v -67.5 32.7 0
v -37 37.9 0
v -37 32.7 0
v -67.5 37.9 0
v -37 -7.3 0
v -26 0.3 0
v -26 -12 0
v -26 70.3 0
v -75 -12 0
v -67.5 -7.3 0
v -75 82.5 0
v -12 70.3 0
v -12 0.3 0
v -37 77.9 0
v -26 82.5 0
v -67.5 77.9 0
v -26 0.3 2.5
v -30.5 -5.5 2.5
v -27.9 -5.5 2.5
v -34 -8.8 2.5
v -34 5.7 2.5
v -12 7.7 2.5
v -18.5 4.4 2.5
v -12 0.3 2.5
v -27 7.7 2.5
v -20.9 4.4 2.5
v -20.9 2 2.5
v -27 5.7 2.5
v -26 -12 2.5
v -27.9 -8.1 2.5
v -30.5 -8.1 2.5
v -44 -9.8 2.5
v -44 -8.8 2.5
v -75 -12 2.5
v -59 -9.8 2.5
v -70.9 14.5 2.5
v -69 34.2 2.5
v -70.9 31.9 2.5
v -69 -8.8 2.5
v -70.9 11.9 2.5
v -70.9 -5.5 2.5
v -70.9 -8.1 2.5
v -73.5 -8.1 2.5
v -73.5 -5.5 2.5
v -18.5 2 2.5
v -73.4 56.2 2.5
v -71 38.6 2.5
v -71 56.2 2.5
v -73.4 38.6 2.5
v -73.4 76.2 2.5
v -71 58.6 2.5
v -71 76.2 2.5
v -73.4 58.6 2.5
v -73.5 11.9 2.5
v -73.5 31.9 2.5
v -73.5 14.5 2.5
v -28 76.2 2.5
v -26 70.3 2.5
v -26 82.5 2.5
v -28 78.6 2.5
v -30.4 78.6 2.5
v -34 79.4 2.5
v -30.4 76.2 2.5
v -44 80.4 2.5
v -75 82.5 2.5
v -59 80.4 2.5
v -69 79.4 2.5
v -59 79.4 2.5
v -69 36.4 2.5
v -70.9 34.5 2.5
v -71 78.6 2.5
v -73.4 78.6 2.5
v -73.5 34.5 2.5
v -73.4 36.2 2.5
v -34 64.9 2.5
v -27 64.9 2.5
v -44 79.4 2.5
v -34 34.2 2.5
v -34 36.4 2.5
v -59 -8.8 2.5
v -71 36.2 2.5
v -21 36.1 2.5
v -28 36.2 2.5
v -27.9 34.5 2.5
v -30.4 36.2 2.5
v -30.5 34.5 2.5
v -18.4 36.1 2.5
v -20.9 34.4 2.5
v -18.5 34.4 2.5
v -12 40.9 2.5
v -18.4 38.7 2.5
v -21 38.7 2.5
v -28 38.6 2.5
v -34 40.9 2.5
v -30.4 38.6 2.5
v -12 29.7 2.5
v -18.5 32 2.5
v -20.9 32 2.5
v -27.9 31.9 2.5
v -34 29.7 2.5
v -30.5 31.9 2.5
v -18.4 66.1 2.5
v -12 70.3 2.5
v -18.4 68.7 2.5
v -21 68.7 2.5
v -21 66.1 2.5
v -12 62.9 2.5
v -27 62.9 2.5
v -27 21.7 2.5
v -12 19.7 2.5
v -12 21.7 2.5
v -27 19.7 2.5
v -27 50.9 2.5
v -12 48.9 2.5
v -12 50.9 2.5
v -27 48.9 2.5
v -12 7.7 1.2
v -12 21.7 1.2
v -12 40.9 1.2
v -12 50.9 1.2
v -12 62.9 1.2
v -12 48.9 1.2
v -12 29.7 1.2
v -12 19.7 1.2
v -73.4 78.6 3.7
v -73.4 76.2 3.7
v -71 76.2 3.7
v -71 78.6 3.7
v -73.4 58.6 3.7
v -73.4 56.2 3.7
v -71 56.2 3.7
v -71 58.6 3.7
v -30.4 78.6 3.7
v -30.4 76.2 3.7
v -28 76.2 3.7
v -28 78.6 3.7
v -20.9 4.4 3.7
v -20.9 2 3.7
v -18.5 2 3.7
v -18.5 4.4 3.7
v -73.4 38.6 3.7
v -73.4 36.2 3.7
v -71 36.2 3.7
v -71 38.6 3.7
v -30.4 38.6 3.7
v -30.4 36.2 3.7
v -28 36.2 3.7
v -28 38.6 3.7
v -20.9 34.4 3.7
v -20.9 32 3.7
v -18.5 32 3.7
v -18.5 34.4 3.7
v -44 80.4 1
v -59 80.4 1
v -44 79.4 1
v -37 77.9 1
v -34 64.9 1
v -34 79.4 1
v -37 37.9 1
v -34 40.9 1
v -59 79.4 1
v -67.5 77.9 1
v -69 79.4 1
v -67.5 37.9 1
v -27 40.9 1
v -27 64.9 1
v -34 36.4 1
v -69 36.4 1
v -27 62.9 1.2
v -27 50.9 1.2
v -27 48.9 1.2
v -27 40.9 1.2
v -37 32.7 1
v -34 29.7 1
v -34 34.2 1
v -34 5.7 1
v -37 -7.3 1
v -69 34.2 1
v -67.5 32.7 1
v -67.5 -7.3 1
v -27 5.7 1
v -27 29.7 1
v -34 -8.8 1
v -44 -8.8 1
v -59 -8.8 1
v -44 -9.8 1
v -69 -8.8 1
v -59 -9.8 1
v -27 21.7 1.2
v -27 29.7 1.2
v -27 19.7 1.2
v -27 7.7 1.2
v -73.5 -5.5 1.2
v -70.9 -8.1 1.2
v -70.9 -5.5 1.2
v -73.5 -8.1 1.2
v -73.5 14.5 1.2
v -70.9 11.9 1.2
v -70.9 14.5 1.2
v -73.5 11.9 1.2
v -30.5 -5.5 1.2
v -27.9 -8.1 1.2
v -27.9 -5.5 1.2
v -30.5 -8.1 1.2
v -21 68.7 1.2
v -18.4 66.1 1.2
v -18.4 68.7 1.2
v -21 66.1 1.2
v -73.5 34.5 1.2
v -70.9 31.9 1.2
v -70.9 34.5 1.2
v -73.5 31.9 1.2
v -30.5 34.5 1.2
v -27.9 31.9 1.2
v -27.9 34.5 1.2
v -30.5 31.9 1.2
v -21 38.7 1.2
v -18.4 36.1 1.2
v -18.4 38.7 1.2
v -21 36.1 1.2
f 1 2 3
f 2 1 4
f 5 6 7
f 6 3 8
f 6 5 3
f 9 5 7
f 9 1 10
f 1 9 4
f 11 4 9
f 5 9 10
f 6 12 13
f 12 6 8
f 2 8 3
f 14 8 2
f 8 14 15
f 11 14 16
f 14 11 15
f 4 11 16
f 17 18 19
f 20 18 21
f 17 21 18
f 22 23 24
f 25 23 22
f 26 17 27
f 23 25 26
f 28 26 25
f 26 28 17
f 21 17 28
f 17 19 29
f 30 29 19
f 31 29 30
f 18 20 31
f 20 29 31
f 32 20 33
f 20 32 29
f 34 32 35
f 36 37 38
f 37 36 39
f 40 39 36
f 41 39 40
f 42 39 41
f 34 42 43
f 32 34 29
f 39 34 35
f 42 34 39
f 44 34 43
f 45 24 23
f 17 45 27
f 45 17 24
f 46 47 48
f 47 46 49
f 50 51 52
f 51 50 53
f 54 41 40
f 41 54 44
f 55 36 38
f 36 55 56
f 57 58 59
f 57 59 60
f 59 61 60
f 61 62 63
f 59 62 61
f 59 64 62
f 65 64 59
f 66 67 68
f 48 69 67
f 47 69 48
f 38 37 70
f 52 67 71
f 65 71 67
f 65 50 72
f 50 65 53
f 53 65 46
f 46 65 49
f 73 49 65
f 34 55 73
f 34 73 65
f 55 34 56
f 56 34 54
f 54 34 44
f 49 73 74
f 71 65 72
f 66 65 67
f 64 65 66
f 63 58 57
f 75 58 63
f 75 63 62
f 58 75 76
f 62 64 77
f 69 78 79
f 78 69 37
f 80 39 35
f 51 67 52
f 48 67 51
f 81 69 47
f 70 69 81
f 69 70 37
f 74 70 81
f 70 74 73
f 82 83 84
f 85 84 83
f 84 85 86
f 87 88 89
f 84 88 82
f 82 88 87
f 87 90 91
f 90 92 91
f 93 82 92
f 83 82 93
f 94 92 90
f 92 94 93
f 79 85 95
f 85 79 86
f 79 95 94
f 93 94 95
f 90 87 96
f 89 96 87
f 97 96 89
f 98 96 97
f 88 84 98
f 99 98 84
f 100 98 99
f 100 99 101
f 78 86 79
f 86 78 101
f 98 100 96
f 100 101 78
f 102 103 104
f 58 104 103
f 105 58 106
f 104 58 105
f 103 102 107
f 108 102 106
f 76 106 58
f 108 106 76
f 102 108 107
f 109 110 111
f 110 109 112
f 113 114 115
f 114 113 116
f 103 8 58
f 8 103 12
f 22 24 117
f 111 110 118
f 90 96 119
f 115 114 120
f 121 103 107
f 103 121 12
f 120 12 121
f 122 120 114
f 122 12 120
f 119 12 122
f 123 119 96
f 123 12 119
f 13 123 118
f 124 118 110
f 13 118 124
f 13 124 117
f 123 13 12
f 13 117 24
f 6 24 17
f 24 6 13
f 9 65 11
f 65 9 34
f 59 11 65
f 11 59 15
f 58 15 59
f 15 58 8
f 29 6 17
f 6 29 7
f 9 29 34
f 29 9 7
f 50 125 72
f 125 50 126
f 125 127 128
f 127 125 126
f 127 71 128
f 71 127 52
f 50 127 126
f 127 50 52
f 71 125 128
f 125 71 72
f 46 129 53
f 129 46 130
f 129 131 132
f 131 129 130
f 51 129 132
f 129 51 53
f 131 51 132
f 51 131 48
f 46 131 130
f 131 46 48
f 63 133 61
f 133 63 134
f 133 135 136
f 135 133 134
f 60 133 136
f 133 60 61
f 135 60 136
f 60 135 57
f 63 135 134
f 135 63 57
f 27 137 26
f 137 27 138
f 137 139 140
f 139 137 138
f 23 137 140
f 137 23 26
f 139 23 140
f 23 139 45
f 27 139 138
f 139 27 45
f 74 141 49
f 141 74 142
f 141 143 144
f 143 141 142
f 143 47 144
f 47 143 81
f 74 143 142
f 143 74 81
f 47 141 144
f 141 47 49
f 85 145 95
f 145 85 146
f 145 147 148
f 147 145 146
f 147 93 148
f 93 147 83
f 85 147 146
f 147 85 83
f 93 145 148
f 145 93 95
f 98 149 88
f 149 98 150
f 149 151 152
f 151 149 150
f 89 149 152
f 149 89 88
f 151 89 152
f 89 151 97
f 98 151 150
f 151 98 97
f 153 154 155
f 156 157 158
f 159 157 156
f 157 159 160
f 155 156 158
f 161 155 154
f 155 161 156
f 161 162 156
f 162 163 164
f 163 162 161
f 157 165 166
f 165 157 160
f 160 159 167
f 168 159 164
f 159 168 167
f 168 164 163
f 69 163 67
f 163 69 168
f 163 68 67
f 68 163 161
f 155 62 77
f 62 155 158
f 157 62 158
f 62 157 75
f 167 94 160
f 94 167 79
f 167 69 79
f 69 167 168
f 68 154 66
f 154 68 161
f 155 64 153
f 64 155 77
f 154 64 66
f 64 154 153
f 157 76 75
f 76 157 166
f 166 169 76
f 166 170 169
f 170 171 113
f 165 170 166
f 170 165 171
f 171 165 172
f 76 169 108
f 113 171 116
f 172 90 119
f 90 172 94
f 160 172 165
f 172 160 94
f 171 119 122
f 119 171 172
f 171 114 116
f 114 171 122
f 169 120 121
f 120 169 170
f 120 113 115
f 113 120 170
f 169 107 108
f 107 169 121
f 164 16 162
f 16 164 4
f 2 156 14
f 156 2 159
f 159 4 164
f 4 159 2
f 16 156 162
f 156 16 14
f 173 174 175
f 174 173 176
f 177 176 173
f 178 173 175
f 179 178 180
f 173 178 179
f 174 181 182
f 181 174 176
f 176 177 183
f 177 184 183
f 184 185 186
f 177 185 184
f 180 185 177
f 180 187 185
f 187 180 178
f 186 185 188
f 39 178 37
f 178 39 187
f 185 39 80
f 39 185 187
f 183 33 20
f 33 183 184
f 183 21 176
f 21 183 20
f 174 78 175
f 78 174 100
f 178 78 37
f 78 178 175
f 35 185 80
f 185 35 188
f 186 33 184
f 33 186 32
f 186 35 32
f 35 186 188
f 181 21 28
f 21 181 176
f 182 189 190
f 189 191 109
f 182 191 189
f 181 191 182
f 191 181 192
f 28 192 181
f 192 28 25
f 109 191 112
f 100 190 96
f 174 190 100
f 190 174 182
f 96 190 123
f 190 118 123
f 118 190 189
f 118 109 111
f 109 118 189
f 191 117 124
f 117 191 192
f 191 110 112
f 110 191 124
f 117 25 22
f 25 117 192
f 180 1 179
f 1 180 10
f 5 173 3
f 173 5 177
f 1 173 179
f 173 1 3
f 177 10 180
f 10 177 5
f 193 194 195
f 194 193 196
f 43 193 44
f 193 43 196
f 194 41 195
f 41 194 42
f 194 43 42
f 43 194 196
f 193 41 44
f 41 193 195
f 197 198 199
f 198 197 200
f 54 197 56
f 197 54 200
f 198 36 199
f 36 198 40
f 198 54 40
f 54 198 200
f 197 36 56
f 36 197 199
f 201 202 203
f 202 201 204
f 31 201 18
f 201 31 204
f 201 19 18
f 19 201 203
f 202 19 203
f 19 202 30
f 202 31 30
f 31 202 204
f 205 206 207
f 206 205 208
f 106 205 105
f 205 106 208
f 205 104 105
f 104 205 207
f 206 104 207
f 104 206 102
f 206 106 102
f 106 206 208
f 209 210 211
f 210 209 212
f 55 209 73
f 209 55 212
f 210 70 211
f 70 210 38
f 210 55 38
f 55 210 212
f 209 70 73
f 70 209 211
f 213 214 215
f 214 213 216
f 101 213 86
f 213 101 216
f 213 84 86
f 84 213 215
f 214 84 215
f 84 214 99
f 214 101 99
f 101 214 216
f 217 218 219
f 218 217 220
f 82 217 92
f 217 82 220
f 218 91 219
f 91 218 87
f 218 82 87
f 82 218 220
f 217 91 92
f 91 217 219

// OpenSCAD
rotate([0,-90,0]) translate([0, 0, 04]) difference() {
    union() {
        translate([0, 0.3, 8]) cube([2.5, 70, 61]);
        translate([0, -12, 22]) cube([2.5, 94.5, 49]);
        translate([2.5, 76.2, 67]) cube([1.2, 2.4,2.4]);
        translate([2.5, 56.2, 67]) cube([1.2, 2.4,2.4]);
        translate([2.5, 76.2, 24]) cube([1.2, 2.4,2.4]);
        translate([2.5, 2, 14.5]) cube([1.2, 2.4,2.4]);
        translate([2.5, 36.2, 67]) cube([1.2, 2.4,2.4]);
        translate([2.5, 36.2, 24]) cube([1.2, 2.4,2.4]);
        translate([2.5, 32, 14.5]) cube([1.2, 2.4,2.4]);
    }
    
    //corners
    translate([1.2, 1.9-10, 66.9]) cube([1.3, 2.6,2.6]);
    translate([1.2, 1.9+10, 66.9]) cube([1.3, 2.6,2.6]);
    translate([1.2, 1.9-10, 23.9]) cube([1.3, 2.6,2.6]);
    translate([1.2, 66.1, 14.4]) cube([1.3, 2.6,2.6]);
    translate([1.2, 31.9, 66.9]) cube([1.3, 2.6,2.6]);
    translate([1.2, 31.9, 23.9]) cube([1.3, 2.6,2.6]);
    translate([1.2, 36.1, 14.4]) cube([1.3, 2.6,2.6]);
    
   
    
    translate([0,34.7,23]) mirror([0,-1,0]) {
        translate([1, 0.5, 7]) cube([1.5, 43, 35]);
        translate([1, 40.5, 17]) cube([1.5, 4, 15]);
        translate([1, 5, 0]) cube([1.5, 24, 10]);
        
        //for wires
        translate([1.2,5,-40]) cube([2, 8, 40]);
        translate([1.2,15,-40]) cube([2, 12, 40]);
        
        translate([0,2,10]) cube([5,40,30.5]);
    }

    
    translate([0,35.9,23]) {
        translate([1, 0.5, 7]) cube([1.5, 43, 35]);
        translate([1, 40.5, 17]) cube([1.5, 4, 15]);
        translate([1, 5, 0]) cube([1.5, 24, 10]);
        
        //for wires
        translate([1.2,5,-40]) cube([2, 8, 40]);
        translate([1.2,15,-40]) cube([2, 12, 40]);
        
        translate([0,2,10]) cube([5,40,30.5]);
    }
}
